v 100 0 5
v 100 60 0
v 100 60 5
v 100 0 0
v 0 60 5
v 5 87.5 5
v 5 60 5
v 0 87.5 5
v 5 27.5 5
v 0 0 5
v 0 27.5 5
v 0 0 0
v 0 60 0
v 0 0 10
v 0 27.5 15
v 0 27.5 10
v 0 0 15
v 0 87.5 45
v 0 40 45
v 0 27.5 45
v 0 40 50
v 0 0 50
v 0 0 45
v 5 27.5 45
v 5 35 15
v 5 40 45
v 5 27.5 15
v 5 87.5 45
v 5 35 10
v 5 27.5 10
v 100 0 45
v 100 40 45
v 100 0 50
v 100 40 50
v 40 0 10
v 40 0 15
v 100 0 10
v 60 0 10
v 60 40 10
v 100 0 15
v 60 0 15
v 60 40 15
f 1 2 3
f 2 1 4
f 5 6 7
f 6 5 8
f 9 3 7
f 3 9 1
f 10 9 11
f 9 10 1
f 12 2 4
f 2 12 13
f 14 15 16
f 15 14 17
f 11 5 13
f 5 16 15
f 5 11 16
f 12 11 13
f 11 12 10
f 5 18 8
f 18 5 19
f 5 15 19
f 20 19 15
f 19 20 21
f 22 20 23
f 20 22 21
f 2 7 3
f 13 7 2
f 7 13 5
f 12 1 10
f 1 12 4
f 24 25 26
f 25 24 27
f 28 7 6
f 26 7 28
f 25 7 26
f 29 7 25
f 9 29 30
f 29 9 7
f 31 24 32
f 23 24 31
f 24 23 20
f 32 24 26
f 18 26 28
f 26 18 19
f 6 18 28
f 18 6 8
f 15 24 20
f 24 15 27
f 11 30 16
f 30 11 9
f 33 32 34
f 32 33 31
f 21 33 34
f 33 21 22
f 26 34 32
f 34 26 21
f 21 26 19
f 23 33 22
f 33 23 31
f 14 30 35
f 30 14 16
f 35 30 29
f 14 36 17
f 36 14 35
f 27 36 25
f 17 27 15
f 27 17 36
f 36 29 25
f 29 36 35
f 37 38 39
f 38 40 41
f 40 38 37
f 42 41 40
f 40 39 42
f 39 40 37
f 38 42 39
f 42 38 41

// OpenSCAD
// Dimensions
base_plate_length = 100;
base_plate_width = 60;
base_plate_thickness = 5;

vertical_plate_length = 60;
vertical_plate_height = 40;
vertical_plate_thickness = 5;

horizontal_plate_length = 100;
horizontal_plate_width = 40;
horizontal_plate_thickness = 5;

corner_connector_length = 40;
corner_connector_height = 40;
corner_connector_thickness = 5;

// Base Plate
module base_plate() {
    cube([base_plate_length, base_plate_width, base_plate_thickness], center = false);
}

// Vertical Plate
module vertical_plate() {
    translate([0, (base_plate_width - vertical_plate_thickness) / 2, base_plate_thickness])
        cube([vertical_plate_thickness, vertical_plate_length, vertical_plate_height], center = false);
}

// Horizontal Plate
module horizontal_plate() {
    translate([0, 0, base_plate_thickness + vertical_plate_height])
        cube([horizontal_plate_length, horizontal_plate_width, horizontal_plate_thickness], center = false);
}

// Corner Connector
module corner_connector() {
    translate([0, 0, base_plate_thickness])
        linear_extrude(height = corner_connector_thickness)
            polygon(points = [[0, 0], [corner_connector_length, 0], [0, corner_connector_height]]);
}

// Assembly
module assembly() {
    // Base Plate
    base_plate();

    // Vertical Plate
    vertical_plate();

    // Horizontal Plate
    horizontal_plate();

    // Corner Connectors
    translate([0, 0, base_plate_thickness])
        corner_connector();
    translate([horizontal_plate_length - corner_connector_length, 0, base_plate_thickness])
        corner_connector();
}

// Render the model
assembly();
